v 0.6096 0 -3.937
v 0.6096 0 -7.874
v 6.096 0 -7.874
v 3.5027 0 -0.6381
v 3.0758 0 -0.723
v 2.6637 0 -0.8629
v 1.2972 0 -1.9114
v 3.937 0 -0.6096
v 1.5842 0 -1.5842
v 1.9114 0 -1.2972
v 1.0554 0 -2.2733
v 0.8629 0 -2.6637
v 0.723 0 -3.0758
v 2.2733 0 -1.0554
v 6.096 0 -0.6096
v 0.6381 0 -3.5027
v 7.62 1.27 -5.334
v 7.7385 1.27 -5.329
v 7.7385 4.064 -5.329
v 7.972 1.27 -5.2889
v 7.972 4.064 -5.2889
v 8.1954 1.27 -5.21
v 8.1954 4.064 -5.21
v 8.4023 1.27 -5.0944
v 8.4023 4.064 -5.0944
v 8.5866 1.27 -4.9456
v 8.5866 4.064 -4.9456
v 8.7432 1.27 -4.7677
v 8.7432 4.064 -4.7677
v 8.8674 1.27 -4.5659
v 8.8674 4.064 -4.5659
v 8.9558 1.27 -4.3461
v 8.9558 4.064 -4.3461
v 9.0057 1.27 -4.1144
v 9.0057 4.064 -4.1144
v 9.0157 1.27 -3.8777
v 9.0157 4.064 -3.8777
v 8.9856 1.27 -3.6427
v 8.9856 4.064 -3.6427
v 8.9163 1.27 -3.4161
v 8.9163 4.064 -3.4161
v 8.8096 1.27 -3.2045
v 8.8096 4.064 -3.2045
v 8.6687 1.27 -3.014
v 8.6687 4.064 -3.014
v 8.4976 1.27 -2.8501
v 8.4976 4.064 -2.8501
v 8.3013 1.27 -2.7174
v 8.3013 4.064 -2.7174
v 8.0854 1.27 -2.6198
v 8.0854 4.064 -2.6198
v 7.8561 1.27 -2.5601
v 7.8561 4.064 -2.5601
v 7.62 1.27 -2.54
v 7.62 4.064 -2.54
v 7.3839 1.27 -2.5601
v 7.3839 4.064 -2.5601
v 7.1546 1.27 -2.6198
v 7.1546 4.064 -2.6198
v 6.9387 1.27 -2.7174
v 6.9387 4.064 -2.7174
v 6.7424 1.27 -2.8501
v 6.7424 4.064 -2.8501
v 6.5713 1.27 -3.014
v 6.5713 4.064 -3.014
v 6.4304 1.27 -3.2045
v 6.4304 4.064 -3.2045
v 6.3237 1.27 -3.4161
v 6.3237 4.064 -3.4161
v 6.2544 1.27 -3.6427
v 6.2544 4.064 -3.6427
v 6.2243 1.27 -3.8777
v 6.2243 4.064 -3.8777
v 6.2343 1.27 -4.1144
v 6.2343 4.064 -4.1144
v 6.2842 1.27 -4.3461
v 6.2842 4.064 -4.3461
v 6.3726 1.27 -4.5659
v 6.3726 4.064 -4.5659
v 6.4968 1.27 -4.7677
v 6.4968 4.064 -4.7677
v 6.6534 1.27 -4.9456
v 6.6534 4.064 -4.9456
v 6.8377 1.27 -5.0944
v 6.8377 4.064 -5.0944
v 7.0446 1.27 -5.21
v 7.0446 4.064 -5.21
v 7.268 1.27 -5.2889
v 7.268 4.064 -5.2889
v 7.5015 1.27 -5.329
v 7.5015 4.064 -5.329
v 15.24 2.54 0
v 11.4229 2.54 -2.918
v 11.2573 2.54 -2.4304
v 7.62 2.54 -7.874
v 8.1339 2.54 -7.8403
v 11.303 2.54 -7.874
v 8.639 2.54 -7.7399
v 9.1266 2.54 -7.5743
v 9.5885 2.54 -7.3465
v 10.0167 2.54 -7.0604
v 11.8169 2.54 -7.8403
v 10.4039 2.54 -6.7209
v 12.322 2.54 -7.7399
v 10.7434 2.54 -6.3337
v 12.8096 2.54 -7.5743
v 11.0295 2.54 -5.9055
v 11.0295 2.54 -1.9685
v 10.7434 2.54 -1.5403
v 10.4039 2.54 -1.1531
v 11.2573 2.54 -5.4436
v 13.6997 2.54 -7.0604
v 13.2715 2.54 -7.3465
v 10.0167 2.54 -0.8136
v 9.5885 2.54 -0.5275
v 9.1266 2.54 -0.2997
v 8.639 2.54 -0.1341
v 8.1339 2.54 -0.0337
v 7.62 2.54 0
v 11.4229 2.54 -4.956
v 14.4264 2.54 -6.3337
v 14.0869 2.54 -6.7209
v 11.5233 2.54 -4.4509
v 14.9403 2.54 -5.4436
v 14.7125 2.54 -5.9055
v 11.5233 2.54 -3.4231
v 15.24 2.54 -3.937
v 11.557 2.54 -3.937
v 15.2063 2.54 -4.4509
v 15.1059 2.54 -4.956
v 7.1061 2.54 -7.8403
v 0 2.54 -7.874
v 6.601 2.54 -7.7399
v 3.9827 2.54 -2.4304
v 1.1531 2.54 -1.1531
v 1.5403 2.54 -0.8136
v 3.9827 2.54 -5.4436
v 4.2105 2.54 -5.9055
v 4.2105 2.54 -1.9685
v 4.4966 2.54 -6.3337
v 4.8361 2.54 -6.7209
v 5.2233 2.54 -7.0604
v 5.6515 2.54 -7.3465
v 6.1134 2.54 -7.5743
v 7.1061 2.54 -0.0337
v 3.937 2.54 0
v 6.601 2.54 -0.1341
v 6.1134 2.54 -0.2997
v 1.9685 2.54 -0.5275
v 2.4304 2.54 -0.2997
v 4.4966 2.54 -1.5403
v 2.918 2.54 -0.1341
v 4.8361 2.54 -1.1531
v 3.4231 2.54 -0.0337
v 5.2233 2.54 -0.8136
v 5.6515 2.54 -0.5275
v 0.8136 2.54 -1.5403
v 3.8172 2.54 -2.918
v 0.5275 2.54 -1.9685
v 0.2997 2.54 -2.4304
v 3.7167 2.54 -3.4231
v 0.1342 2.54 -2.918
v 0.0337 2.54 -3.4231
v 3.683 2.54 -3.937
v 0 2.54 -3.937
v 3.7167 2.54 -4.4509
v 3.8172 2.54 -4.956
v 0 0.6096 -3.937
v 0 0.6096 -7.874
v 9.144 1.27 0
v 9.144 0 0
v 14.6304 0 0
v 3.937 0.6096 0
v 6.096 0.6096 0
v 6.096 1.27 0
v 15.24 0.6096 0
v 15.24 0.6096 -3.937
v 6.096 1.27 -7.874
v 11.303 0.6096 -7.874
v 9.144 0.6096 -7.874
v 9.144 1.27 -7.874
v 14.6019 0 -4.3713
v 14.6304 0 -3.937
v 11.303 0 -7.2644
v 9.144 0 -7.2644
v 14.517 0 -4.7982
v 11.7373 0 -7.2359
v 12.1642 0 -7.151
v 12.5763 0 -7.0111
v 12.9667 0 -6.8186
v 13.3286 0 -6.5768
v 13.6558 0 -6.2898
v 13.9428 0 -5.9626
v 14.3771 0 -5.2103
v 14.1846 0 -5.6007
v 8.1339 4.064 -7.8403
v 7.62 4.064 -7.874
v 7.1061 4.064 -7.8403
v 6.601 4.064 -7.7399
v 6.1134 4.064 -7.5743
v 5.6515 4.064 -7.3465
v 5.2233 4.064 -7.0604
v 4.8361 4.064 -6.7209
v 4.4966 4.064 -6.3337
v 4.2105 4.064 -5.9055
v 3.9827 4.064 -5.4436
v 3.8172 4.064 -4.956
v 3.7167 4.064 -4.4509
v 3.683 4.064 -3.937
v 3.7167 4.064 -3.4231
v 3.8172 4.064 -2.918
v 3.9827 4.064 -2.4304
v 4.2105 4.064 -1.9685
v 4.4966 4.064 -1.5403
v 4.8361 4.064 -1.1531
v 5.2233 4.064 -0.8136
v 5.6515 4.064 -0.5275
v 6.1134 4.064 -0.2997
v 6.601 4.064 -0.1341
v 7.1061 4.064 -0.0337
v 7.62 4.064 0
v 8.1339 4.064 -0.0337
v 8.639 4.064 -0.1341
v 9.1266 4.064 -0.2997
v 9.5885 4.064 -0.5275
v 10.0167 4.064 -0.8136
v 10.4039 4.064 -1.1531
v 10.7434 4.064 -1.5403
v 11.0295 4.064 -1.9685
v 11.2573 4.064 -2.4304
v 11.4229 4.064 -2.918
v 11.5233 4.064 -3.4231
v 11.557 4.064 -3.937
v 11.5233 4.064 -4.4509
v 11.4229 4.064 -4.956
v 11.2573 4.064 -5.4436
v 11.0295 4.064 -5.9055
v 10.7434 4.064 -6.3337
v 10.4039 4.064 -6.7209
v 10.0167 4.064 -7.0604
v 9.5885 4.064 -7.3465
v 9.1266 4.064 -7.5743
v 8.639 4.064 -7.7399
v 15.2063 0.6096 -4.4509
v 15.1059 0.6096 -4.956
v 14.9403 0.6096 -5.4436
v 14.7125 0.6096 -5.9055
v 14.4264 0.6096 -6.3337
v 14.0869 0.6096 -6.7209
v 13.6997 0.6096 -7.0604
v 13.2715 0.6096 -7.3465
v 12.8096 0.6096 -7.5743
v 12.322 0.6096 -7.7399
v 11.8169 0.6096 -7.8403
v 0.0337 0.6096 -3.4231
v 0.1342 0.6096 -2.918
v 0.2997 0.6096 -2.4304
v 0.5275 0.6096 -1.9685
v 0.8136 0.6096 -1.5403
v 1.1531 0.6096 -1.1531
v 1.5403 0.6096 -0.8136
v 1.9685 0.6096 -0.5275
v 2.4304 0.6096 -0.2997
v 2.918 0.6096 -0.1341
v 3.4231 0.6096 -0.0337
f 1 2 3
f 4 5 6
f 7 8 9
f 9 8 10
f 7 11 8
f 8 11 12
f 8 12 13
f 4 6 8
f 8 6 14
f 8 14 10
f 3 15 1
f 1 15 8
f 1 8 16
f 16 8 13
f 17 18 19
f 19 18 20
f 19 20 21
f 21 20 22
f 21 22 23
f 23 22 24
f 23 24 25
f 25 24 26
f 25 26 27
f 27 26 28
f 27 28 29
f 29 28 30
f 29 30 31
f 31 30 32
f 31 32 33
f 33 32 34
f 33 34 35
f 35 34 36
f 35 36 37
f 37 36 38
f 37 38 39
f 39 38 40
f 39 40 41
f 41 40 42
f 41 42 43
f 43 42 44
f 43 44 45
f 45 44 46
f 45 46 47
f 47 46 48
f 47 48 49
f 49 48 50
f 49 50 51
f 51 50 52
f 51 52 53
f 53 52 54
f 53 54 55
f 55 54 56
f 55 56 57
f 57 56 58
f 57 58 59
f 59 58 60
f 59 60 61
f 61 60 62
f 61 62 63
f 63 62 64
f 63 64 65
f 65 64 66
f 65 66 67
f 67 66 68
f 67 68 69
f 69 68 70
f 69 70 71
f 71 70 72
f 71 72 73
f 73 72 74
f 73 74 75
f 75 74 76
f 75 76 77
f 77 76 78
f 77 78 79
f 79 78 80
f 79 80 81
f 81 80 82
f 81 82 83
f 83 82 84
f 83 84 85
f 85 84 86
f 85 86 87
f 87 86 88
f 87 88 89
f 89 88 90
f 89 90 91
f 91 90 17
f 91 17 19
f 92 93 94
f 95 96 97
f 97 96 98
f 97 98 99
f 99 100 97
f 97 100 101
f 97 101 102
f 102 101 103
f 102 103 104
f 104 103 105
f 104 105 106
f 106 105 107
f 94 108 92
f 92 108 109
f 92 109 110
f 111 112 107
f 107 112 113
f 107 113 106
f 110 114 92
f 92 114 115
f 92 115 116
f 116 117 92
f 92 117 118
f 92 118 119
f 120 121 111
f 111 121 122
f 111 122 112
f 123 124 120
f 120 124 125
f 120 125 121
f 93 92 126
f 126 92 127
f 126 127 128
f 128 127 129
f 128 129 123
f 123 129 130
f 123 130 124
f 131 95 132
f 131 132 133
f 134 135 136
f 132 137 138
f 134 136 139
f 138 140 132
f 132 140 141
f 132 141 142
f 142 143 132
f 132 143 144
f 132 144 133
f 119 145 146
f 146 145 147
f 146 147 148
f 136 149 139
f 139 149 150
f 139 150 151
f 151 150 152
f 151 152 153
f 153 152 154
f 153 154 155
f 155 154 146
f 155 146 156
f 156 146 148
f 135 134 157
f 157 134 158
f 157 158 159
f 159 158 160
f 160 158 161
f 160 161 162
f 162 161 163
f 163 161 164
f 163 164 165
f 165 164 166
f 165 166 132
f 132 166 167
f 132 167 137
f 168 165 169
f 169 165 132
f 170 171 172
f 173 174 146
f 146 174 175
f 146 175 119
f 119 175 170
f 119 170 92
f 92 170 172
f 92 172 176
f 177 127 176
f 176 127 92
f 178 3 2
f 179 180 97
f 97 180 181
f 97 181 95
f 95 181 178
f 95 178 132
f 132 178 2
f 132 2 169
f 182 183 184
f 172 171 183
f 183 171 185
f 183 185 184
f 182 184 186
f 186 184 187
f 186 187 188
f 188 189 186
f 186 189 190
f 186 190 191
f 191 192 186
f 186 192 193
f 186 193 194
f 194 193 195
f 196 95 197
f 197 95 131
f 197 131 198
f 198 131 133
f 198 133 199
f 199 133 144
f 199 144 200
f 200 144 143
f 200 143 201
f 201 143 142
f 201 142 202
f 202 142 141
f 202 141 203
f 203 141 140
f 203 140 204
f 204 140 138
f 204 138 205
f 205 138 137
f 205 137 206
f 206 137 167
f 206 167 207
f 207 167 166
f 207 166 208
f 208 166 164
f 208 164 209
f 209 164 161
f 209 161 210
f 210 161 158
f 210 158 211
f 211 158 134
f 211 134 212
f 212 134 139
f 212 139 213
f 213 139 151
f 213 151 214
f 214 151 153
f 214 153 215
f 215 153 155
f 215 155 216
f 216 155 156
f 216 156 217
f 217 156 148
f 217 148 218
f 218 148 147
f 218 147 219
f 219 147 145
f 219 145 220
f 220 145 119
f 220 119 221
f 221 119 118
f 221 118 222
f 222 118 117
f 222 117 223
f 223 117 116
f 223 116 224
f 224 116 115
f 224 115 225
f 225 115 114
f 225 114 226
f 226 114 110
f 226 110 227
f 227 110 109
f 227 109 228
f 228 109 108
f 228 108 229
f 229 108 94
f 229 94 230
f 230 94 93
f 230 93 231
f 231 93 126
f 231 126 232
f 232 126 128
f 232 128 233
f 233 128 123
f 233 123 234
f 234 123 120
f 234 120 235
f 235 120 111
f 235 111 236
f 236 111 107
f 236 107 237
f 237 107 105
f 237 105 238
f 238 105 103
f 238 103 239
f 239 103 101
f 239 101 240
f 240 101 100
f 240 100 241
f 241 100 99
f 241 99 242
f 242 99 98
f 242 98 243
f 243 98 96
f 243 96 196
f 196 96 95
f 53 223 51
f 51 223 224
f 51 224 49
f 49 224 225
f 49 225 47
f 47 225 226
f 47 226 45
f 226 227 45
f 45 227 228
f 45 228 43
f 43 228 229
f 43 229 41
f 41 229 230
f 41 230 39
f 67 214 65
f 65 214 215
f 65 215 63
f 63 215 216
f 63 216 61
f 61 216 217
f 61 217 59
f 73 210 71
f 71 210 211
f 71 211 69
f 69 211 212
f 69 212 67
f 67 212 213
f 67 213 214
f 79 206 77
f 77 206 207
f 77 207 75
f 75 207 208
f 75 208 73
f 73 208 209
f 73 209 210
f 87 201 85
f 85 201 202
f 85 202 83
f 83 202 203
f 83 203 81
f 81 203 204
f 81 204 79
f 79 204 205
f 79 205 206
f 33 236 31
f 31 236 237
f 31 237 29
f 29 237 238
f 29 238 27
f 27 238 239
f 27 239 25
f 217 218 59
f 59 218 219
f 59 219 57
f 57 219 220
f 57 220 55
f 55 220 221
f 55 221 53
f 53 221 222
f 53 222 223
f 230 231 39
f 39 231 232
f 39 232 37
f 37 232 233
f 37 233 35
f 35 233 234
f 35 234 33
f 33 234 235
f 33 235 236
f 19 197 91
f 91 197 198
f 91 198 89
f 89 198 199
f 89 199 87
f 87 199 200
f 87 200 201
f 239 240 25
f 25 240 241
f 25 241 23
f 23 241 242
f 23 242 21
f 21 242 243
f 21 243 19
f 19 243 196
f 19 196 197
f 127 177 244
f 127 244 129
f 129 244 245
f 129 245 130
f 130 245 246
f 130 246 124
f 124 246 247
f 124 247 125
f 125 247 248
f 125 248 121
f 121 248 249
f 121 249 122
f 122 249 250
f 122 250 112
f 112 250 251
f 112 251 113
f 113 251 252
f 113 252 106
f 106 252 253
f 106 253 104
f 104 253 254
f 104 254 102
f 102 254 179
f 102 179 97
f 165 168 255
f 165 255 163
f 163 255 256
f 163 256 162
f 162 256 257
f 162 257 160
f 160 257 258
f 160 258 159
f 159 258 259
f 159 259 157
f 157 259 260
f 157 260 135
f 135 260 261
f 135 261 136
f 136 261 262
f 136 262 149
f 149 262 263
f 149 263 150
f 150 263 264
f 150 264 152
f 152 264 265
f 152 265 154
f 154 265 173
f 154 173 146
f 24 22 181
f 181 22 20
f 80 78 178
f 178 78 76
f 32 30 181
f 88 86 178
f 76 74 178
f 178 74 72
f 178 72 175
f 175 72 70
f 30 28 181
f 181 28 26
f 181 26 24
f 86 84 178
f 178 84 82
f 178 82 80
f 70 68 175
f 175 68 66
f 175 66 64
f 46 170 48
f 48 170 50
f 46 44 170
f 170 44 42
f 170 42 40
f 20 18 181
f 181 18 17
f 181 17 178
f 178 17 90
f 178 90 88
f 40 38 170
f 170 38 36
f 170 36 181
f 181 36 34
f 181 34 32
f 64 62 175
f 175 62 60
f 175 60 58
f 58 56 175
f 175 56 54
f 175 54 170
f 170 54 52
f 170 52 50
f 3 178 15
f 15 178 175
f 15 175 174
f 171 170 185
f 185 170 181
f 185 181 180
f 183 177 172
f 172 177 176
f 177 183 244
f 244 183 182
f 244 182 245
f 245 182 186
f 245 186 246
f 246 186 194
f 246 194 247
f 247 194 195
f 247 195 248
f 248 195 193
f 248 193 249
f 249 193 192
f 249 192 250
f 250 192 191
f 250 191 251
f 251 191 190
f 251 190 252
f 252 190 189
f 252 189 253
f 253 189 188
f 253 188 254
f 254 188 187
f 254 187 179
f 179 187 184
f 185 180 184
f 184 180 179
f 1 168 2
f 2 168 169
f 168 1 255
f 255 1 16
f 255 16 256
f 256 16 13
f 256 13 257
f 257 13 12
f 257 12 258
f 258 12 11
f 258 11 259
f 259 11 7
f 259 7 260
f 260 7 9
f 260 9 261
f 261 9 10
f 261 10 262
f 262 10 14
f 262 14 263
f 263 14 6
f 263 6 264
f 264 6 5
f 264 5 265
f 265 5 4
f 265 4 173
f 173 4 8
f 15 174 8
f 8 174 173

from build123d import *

# Parameters (mm, degrees)
SKETCH1_W           = 15.24
SKETCH1_H           = 7.874
BOSS_EXTRUDE1_DEPTH = 2.54
SKETCH2_R           = 3.937
BOSS_EXTRUDE2_DEPTH = 1.524
SKETCH3_R           = 1.397
CUT_EXTRUDE1_DEPTH  = 18.628771143
FILLET1_R           = 3.937
SKETCH4_W           = 3.048
SKETCH4_H           = 7.874
CUT_EXTRUDE2_DEPTH  = 1.27
CHAMFER1_SIZE       = 0.6096


with BuildPart() as part:
    # Sketch1 → Boss-Extrude1 (new body)
    with BuildSketch(Plane(origin=(0, 0, 0), x_dir=(1, 0, 0), z_dir=(0, 1, 0))):
        with Locations((7.62, 3.937)):
            Rectangle(SKETCH1_W, SKETCH1_H)
    extrude(amount=BOSS_EXTRUDE1_DEPTH)

    # Sketch2 → Boss-Extrude2 (add)
    with BuildSketch(Plane(origin=(0, 2.54, 0), x_dir=(1, 0, 0), z_dir=(0, 1, 0))):
        with Locations(Location((7.62, 3.937, 0), (0, 0, 270))):
            Circle(SKETCH2_R)
    extrude(amount=BOSS_EXTRUDE2_DEPTH)

    # Sketch3 → Cut-Extrude1 (cut, through all)
    with BuildSketch(Plane(origin=(0, 4.064, 0), x_dir=(1, 0, 0), z_dir=(0, 1, 0))):
        with Locations(Location((7.62, 3.937, 0), (0, 0, 270))):
            Circle(SKETCH3_R)
    extrude(amount=-CUT_EXTRUDE1_DEPTH, mode=Mode.SUBTRACT)

    # Fillet1
    fillet1_edges = [part.edges().sort_by_distance(p)[0] for p in [
        (15.24, 1.27, -7.874),
        (0, 1.27, 0),
    ]]
    fillet(fillet1_edges, radius=FILLET1_R)

    # Sketch4 → Cut-Extrude2 (cut)
    with BuildSketch(Plane.XZ):
        with Locations((7.62, -3.937)):
            Rectangle(SKETCH4_W, SKETCH4_H)
    extrude(amount=-CUT_EXTRUDE2_DEPTH, mode=Mode.SUBTRACT)

    # Chamfer1
    chamfer1_edges = [part.edges().sort_by_distance(p)[0] for p in [
        (10.2235, 0, -7.874),
        (14.086879398, 0, -6.720879398),
        (15.24, 0, -1.9685),
        (5.0165, 0, 0),
        (1.153120602, 0, -1.153120602),
        (0, 0, -5.9055),
    ]]
    chamfer(chamfer1_edges, length=CHAMFER1_SIZE)


solid = part.part
